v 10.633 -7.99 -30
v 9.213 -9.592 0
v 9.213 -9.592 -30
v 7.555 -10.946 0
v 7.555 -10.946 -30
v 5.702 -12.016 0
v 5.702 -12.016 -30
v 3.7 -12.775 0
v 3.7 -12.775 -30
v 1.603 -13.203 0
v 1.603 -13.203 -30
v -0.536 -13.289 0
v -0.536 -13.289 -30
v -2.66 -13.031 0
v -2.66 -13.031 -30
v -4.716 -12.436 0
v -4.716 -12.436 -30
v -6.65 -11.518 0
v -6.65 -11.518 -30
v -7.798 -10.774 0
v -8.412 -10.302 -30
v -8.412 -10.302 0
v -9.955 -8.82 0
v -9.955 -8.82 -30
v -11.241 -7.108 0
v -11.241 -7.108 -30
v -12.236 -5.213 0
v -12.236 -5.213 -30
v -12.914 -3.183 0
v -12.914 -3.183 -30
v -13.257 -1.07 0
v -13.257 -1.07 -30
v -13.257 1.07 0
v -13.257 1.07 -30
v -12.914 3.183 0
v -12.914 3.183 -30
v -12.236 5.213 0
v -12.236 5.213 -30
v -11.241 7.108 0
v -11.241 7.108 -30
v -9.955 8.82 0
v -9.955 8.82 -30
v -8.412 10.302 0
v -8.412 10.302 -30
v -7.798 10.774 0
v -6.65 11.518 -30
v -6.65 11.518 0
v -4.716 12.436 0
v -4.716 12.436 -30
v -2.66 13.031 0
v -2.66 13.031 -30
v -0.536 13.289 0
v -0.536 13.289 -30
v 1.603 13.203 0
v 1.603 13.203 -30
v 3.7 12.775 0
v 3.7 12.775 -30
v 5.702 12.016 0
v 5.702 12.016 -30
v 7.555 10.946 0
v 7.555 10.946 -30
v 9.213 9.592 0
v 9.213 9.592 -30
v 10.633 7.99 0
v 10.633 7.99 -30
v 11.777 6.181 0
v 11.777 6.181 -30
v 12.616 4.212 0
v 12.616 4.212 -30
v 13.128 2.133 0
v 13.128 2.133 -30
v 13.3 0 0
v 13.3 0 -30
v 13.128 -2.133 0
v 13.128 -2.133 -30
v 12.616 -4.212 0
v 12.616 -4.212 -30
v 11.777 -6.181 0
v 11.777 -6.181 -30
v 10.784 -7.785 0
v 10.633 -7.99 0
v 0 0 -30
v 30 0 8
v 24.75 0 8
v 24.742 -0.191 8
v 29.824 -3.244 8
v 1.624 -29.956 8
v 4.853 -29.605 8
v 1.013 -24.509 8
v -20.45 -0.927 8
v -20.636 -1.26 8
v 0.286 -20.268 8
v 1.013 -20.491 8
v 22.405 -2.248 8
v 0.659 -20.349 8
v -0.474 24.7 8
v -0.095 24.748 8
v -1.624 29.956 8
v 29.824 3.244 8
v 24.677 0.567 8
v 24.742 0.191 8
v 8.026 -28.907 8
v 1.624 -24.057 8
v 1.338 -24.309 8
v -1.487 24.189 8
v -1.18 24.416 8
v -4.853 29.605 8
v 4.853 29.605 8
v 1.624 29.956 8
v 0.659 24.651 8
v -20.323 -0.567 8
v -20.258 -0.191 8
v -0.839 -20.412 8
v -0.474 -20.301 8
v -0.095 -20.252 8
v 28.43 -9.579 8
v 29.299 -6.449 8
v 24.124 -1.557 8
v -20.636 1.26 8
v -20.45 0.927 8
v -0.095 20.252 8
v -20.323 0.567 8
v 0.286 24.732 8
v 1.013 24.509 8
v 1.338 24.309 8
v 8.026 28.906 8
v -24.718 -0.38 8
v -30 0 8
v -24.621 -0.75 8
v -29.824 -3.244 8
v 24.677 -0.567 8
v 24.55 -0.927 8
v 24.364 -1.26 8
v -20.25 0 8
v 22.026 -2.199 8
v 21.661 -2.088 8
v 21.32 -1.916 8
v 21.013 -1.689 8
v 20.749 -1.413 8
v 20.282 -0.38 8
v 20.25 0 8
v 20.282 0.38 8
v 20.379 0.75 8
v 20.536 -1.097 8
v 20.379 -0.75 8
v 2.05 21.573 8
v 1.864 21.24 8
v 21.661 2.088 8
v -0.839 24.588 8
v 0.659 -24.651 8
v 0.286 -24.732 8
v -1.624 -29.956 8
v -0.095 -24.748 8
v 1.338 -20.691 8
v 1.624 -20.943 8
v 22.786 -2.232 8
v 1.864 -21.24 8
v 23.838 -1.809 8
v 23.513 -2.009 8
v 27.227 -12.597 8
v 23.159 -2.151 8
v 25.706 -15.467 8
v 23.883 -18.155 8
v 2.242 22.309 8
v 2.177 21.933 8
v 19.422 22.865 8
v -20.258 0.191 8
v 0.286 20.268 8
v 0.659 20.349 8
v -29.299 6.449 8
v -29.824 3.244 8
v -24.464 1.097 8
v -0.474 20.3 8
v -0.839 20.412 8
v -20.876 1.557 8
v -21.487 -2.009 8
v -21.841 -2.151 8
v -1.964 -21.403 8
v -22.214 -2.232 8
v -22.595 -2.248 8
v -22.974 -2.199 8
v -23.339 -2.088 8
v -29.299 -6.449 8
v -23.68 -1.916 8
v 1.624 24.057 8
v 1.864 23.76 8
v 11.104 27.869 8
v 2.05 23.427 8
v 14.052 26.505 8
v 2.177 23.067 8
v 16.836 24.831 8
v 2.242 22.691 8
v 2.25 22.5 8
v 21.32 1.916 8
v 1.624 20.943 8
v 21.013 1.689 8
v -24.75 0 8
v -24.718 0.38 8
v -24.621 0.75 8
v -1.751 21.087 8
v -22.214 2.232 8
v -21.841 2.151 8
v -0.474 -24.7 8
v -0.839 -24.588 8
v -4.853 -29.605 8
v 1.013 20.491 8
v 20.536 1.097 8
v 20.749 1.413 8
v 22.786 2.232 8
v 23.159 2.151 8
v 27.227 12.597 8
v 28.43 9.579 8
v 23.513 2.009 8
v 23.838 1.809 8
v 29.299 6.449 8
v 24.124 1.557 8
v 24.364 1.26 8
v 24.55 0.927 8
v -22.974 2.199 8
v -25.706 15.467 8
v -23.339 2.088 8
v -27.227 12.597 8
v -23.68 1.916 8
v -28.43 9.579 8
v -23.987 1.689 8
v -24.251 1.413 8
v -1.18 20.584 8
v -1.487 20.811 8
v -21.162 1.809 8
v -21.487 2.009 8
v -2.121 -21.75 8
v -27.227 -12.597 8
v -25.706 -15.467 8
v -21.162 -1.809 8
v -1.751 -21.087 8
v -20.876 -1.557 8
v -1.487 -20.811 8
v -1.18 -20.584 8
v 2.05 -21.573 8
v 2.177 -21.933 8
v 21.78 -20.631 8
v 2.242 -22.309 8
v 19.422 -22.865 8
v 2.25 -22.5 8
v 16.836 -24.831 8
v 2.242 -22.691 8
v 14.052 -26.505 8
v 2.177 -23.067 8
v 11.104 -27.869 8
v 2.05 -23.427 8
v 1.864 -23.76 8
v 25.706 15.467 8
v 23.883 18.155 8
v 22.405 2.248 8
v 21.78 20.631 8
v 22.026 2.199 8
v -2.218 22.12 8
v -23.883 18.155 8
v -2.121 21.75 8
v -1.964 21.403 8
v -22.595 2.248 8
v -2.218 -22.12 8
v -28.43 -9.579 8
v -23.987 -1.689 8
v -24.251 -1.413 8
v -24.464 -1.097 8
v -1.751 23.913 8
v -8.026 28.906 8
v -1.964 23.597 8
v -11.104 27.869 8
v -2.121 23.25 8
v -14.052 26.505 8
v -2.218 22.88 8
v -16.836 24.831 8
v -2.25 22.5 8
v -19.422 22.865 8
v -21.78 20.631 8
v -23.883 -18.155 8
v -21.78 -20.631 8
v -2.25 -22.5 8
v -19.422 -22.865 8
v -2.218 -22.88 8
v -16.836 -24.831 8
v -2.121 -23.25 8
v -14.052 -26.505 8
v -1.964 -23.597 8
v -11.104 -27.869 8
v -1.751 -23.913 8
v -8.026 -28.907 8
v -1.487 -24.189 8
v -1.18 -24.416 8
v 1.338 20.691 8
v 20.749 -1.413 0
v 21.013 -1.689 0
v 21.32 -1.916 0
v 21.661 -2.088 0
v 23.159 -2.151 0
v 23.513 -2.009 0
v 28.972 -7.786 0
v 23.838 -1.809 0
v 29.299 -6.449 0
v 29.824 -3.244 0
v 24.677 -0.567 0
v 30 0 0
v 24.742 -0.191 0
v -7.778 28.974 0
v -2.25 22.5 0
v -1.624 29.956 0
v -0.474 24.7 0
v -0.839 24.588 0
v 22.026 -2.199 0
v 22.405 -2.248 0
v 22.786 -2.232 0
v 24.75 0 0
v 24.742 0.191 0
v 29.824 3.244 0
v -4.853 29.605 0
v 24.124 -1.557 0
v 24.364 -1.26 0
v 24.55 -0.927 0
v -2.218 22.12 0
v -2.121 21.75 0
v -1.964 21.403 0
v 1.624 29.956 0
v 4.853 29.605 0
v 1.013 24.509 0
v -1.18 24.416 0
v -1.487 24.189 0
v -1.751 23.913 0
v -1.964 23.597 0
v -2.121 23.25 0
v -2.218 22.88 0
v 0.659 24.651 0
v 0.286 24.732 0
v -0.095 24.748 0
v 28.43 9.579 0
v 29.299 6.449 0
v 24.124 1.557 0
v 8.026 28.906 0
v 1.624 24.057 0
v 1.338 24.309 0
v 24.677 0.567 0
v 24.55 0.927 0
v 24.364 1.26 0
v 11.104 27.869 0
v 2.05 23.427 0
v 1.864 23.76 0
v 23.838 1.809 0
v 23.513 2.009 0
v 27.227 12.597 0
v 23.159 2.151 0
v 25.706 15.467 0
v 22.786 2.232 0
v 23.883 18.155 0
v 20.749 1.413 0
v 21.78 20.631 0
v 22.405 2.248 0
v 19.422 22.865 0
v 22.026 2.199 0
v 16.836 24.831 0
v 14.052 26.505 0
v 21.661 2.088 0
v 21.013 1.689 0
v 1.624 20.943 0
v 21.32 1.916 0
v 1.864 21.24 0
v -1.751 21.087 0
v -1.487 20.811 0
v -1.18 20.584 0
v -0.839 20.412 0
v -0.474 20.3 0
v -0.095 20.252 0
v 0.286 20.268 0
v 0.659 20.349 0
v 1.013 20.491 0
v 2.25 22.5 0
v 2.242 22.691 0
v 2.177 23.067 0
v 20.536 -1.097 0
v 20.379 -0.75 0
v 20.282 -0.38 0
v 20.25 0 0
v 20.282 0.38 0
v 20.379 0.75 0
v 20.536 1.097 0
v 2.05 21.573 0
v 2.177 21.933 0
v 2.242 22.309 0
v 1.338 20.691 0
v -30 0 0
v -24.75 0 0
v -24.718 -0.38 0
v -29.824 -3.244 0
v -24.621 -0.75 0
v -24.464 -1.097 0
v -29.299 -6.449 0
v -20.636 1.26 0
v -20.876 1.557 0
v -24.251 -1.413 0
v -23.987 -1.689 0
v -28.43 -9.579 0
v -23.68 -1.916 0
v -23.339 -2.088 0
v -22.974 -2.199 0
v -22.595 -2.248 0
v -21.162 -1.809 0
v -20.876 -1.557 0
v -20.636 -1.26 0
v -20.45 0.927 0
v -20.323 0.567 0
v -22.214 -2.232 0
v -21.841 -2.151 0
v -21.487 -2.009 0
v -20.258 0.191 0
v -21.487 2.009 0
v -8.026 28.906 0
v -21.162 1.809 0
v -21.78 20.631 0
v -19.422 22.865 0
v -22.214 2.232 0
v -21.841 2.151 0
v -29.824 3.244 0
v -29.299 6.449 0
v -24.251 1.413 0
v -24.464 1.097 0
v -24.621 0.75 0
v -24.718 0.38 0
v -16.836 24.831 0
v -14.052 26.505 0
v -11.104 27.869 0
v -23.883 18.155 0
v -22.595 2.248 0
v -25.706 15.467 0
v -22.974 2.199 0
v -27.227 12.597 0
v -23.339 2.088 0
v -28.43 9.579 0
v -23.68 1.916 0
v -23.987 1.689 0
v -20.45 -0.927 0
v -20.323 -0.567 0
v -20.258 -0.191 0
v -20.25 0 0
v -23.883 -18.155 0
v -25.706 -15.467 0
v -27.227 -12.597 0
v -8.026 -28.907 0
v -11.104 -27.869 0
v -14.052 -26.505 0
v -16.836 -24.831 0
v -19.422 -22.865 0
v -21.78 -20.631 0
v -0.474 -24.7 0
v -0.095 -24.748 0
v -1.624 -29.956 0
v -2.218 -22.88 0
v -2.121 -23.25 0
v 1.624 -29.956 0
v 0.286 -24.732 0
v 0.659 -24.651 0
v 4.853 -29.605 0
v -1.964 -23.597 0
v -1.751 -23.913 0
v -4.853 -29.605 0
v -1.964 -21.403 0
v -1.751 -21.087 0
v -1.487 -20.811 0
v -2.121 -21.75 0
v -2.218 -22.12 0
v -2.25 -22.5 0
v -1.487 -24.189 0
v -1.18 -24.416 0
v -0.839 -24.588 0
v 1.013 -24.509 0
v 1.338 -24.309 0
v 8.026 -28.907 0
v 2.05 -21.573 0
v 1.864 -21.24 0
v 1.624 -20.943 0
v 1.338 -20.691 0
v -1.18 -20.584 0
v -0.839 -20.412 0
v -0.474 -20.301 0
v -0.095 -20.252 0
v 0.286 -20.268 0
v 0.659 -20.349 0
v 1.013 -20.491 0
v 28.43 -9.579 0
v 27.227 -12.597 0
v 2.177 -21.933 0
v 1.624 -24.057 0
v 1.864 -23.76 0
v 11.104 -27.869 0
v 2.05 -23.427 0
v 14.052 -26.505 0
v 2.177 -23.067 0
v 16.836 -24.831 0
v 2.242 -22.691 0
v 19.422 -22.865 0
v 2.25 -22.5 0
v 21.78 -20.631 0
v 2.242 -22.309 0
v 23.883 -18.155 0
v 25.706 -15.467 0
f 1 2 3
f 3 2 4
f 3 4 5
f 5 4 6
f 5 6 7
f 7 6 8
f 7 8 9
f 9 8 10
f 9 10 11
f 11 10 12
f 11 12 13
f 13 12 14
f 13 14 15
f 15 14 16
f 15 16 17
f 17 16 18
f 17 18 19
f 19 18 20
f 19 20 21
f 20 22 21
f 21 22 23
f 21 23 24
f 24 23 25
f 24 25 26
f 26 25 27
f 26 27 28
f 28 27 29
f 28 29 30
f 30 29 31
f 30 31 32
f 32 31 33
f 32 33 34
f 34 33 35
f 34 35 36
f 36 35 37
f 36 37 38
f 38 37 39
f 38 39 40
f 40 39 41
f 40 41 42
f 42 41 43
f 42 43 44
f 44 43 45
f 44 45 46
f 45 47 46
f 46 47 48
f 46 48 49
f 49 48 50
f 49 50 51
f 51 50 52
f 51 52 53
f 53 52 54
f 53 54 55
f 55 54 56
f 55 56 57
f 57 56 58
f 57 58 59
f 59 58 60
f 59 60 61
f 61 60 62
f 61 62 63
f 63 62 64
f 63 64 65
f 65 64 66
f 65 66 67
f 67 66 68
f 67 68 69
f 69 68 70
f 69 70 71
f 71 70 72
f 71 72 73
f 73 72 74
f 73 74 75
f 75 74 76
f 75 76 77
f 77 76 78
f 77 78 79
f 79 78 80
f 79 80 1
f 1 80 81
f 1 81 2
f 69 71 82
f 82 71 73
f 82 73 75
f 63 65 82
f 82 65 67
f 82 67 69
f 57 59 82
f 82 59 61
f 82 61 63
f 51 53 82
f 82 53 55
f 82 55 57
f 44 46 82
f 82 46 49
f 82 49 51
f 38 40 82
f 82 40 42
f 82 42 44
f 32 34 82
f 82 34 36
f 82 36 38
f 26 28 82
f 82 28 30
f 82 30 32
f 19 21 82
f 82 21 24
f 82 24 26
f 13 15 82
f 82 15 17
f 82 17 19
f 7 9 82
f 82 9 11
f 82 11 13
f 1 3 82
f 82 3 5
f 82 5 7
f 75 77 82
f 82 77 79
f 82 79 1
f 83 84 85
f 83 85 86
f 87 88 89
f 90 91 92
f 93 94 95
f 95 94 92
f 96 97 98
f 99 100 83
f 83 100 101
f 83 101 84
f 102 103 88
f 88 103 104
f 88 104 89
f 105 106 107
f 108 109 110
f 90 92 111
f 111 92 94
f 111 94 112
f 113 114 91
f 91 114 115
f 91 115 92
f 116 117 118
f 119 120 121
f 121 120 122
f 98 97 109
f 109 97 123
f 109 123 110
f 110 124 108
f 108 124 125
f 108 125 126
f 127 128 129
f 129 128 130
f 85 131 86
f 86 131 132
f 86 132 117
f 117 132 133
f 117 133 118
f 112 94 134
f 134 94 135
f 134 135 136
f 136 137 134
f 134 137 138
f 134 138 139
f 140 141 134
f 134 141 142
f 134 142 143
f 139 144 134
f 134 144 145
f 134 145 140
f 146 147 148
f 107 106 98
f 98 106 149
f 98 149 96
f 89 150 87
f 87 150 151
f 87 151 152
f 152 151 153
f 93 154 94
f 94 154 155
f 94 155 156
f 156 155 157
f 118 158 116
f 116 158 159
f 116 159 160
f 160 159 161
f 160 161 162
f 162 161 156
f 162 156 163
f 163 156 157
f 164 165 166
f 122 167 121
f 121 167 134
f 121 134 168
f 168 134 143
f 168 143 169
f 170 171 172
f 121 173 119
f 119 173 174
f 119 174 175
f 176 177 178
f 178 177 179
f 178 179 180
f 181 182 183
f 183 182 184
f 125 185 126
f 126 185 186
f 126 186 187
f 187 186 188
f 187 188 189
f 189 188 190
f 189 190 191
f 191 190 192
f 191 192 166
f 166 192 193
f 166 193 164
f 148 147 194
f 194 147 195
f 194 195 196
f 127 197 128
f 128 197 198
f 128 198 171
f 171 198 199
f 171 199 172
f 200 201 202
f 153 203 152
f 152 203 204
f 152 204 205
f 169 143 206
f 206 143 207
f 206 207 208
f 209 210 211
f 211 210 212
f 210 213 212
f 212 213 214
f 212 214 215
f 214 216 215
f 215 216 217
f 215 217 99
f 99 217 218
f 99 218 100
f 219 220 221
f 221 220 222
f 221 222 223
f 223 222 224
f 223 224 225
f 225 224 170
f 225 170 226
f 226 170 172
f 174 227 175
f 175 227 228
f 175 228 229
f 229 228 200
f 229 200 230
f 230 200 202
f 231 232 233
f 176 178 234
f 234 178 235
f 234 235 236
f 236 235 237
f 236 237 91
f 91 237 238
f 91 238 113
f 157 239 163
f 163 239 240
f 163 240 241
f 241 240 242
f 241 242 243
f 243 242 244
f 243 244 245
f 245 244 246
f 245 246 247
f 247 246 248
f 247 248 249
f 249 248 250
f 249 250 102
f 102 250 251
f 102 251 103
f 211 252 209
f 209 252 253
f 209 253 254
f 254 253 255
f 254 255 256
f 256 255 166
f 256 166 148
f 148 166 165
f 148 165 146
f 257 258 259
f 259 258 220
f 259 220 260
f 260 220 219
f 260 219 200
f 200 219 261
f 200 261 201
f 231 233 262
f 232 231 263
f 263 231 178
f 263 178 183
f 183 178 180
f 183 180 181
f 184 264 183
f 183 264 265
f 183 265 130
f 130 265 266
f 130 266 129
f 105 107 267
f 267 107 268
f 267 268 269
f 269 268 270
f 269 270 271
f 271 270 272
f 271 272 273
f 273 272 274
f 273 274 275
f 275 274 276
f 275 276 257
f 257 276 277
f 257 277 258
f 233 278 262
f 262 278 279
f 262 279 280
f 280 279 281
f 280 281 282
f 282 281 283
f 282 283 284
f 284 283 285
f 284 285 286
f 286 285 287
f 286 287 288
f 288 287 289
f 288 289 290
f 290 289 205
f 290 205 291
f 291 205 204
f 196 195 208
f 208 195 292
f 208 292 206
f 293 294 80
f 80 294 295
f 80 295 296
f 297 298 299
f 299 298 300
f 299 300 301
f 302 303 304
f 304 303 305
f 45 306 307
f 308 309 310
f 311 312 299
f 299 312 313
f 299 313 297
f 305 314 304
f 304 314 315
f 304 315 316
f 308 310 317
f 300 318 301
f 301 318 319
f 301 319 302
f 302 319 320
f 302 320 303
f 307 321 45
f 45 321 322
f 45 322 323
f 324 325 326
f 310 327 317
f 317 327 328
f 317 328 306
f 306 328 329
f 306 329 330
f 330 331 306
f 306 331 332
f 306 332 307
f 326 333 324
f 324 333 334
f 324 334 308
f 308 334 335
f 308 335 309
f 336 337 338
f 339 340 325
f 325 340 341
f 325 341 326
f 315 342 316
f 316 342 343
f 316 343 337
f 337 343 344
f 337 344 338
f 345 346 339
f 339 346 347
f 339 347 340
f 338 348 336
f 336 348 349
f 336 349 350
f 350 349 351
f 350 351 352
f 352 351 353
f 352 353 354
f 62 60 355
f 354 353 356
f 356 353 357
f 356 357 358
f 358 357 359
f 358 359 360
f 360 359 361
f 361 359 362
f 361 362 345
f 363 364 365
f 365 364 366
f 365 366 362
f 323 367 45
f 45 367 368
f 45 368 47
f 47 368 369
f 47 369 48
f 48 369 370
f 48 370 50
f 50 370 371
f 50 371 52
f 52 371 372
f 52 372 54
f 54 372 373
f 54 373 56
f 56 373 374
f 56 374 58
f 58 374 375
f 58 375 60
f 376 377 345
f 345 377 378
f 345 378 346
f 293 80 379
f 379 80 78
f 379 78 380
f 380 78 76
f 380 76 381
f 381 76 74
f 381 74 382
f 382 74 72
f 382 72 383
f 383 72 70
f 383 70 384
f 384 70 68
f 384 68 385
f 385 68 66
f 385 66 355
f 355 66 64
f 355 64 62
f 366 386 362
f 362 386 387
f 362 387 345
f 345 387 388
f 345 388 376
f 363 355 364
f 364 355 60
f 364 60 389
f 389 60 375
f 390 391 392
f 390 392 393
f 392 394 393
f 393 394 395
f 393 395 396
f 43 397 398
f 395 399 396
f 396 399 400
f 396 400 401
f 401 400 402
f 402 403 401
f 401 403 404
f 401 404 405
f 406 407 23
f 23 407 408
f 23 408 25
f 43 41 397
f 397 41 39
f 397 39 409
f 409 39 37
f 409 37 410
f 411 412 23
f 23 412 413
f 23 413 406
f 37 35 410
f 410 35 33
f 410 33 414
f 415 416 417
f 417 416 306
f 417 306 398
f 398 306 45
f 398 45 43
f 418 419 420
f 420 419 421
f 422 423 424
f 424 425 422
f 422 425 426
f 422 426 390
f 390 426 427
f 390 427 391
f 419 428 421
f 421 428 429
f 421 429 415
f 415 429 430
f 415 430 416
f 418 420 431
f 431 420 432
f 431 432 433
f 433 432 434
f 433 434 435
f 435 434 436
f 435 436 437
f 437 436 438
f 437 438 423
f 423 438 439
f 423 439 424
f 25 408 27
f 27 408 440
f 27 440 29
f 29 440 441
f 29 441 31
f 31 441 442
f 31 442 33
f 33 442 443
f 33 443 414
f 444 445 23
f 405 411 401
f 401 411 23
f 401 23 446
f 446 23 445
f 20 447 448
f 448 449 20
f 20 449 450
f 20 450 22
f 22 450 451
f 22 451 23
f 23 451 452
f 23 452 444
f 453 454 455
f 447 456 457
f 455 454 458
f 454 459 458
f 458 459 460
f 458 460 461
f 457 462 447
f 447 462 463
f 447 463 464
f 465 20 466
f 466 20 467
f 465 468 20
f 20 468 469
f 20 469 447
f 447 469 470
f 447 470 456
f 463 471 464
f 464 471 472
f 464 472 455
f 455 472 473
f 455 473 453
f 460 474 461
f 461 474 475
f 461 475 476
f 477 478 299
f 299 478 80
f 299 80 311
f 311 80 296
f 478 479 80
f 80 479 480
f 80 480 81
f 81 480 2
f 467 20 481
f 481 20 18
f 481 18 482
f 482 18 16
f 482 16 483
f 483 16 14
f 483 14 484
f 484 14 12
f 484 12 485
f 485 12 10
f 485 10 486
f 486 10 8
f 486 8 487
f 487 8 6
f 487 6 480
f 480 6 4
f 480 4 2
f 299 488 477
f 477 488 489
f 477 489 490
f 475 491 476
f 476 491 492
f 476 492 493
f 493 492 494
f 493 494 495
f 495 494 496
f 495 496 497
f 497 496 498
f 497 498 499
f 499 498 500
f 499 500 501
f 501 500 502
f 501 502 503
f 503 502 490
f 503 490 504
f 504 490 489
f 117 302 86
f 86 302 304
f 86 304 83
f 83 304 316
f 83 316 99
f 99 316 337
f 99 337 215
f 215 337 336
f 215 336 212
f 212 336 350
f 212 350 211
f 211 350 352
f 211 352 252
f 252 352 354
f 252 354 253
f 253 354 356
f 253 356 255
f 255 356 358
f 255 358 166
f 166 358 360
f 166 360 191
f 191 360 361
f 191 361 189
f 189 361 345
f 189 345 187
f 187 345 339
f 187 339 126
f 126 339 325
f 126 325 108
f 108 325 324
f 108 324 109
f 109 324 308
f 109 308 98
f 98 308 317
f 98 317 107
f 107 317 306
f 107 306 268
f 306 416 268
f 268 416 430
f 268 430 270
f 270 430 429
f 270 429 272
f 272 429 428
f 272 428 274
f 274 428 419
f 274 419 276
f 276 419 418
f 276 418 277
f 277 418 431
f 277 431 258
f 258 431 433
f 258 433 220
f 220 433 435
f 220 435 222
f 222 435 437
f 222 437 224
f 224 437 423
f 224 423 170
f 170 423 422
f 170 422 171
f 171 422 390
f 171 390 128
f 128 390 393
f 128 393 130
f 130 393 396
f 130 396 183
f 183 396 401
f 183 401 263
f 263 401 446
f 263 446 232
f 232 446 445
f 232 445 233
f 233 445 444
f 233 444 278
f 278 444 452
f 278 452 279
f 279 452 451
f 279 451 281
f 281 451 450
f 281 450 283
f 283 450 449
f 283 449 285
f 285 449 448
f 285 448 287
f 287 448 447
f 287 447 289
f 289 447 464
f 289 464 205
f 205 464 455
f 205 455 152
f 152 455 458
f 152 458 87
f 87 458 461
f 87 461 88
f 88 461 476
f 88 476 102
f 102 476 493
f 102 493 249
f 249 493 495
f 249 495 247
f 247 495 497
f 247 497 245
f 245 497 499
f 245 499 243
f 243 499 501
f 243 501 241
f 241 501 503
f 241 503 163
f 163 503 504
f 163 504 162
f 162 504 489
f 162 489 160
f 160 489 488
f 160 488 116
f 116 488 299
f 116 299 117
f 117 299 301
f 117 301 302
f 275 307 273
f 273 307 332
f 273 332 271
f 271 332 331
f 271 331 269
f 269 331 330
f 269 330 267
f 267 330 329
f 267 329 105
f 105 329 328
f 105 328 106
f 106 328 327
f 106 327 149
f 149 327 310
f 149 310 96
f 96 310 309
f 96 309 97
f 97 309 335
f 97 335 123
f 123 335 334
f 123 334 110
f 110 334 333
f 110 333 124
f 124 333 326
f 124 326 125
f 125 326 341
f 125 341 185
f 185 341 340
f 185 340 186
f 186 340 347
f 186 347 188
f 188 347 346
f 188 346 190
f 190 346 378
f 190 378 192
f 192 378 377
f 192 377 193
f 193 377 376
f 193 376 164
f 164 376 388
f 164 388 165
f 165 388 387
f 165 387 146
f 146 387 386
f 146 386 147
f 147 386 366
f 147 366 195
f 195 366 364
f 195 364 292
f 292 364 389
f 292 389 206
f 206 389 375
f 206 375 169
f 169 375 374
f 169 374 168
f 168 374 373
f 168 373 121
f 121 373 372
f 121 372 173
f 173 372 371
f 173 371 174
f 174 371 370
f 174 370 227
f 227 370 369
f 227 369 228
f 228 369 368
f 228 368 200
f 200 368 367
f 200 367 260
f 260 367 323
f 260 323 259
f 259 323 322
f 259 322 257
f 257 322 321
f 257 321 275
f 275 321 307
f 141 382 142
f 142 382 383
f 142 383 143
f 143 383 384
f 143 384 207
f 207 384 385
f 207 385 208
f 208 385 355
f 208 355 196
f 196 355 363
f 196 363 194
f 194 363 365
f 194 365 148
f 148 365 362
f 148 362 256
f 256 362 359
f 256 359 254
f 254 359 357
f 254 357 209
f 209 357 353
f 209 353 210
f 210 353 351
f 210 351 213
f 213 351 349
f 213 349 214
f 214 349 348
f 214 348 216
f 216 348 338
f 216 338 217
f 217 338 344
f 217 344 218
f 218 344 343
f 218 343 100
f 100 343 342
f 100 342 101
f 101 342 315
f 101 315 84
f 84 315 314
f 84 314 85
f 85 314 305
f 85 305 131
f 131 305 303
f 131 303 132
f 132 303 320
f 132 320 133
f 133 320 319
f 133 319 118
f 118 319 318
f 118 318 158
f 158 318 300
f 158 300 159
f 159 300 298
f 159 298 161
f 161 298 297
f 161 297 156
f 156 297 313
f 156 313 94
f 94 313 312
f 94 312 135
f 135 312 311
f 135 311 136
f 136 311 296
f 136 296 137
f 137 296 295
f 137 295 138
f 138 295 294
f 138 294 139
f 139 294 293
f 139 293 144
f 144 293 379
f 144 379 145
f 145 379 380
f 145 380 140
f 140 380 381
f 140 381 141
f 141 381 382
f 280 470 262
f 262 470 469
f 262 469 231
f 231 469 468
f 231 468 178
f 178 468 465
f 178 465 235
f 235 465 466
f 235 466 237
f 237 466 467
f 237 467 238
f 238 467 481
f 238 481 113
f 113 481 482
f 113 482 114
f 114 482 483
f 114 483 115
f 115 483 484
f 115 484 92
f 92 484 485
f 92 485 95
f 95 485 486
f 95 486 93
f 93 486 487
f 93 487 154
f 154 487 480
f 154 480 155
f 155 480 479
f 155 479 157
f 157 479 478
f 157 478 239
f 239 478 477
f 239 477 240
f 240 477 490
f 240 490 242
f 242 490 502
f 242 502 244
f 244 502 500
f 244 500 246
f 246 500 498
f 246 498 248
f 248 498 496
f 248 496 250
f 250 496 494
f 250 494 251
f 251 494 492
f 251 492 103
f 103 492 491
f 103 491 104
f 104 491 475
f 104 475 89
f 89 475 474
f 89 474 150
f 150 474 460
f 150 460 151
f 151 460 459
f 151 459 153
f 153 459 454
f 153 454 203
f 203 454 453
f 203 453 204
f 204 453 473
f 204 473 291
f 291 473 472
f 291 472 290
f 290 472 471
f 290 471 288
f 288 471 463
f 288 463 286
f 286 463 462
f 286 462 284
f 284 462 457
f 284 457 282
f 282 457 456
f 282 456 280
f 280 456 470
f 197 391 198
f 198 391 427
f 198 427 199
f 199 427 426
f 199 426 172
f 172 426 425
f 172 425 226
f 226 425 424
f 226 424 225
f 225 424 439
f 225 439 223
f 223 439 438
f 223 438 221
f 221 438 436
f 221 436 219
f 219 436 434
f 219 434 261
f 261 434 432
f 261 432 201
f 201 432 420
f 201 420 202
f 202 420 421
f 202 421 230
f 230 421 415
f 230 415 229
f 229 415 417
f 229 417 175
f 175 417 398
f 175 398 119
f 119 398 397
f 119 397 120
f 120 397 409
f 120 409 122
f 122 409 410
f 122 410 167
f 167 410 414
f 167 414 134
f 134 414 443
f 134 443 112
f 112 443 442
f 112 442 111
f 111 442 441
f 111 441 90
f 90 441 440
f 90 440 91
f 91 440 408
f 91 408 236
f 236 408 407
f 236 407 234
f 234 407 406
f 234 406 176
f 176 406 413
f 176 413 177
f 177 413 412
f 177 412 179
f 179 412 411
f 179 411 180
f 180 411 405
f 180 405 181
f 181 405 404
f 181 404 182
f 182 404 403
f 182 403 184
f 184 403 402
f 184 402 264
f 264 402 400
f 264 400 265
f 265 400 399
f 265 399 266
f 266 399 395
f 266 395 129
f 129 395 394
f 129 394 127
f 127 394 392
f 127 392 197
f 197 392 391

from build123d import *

# Parameters (mm, degrees)
CROQUIS1_R              = 13.3
SALIENTE_EXTRUIR1_DEPTH = 30
CROQUIS2_R              = 30
CROQUIS2_R_2            = 2.25
SALIENTE_EXTRUIR2_DEPTH = 8


with BuildPart() as part:
    # Croquis1 → Saliente-Extruir1 (new body)
    with BuildSketch(Plane.XY):
        Circle(CROQUIS1_R)
    extrude(amount=-SALIENTE_EXTRUIR1_DEPTH)

    # Croquis2 → Saliente-Extruir2 (add)
    with BuildSketch(Plane.XY):
        Circle(CROQUIS2_R)
        with Locations((0, 22.5)):
            Circle(CROQUIS2_R_2, mode=Mode.SUBTRACT)
        with Locations((22.5, 0)):
            Circle(CROQUIS2_R_2, mode=Mode.SUBTRACT)
        with Locations((0, -22.5)):
            Circle(CROQUIS2_R_2, mode=Mode.SUBTRACT)
        with Locations((-22.5, 0)):
            Circle(CROQUIS2_R_2, mode=Mode.SUBTRACT)
    extrude(amount=SALIENTE_EXTRUIR2_DEPTH)


solid = part.part
